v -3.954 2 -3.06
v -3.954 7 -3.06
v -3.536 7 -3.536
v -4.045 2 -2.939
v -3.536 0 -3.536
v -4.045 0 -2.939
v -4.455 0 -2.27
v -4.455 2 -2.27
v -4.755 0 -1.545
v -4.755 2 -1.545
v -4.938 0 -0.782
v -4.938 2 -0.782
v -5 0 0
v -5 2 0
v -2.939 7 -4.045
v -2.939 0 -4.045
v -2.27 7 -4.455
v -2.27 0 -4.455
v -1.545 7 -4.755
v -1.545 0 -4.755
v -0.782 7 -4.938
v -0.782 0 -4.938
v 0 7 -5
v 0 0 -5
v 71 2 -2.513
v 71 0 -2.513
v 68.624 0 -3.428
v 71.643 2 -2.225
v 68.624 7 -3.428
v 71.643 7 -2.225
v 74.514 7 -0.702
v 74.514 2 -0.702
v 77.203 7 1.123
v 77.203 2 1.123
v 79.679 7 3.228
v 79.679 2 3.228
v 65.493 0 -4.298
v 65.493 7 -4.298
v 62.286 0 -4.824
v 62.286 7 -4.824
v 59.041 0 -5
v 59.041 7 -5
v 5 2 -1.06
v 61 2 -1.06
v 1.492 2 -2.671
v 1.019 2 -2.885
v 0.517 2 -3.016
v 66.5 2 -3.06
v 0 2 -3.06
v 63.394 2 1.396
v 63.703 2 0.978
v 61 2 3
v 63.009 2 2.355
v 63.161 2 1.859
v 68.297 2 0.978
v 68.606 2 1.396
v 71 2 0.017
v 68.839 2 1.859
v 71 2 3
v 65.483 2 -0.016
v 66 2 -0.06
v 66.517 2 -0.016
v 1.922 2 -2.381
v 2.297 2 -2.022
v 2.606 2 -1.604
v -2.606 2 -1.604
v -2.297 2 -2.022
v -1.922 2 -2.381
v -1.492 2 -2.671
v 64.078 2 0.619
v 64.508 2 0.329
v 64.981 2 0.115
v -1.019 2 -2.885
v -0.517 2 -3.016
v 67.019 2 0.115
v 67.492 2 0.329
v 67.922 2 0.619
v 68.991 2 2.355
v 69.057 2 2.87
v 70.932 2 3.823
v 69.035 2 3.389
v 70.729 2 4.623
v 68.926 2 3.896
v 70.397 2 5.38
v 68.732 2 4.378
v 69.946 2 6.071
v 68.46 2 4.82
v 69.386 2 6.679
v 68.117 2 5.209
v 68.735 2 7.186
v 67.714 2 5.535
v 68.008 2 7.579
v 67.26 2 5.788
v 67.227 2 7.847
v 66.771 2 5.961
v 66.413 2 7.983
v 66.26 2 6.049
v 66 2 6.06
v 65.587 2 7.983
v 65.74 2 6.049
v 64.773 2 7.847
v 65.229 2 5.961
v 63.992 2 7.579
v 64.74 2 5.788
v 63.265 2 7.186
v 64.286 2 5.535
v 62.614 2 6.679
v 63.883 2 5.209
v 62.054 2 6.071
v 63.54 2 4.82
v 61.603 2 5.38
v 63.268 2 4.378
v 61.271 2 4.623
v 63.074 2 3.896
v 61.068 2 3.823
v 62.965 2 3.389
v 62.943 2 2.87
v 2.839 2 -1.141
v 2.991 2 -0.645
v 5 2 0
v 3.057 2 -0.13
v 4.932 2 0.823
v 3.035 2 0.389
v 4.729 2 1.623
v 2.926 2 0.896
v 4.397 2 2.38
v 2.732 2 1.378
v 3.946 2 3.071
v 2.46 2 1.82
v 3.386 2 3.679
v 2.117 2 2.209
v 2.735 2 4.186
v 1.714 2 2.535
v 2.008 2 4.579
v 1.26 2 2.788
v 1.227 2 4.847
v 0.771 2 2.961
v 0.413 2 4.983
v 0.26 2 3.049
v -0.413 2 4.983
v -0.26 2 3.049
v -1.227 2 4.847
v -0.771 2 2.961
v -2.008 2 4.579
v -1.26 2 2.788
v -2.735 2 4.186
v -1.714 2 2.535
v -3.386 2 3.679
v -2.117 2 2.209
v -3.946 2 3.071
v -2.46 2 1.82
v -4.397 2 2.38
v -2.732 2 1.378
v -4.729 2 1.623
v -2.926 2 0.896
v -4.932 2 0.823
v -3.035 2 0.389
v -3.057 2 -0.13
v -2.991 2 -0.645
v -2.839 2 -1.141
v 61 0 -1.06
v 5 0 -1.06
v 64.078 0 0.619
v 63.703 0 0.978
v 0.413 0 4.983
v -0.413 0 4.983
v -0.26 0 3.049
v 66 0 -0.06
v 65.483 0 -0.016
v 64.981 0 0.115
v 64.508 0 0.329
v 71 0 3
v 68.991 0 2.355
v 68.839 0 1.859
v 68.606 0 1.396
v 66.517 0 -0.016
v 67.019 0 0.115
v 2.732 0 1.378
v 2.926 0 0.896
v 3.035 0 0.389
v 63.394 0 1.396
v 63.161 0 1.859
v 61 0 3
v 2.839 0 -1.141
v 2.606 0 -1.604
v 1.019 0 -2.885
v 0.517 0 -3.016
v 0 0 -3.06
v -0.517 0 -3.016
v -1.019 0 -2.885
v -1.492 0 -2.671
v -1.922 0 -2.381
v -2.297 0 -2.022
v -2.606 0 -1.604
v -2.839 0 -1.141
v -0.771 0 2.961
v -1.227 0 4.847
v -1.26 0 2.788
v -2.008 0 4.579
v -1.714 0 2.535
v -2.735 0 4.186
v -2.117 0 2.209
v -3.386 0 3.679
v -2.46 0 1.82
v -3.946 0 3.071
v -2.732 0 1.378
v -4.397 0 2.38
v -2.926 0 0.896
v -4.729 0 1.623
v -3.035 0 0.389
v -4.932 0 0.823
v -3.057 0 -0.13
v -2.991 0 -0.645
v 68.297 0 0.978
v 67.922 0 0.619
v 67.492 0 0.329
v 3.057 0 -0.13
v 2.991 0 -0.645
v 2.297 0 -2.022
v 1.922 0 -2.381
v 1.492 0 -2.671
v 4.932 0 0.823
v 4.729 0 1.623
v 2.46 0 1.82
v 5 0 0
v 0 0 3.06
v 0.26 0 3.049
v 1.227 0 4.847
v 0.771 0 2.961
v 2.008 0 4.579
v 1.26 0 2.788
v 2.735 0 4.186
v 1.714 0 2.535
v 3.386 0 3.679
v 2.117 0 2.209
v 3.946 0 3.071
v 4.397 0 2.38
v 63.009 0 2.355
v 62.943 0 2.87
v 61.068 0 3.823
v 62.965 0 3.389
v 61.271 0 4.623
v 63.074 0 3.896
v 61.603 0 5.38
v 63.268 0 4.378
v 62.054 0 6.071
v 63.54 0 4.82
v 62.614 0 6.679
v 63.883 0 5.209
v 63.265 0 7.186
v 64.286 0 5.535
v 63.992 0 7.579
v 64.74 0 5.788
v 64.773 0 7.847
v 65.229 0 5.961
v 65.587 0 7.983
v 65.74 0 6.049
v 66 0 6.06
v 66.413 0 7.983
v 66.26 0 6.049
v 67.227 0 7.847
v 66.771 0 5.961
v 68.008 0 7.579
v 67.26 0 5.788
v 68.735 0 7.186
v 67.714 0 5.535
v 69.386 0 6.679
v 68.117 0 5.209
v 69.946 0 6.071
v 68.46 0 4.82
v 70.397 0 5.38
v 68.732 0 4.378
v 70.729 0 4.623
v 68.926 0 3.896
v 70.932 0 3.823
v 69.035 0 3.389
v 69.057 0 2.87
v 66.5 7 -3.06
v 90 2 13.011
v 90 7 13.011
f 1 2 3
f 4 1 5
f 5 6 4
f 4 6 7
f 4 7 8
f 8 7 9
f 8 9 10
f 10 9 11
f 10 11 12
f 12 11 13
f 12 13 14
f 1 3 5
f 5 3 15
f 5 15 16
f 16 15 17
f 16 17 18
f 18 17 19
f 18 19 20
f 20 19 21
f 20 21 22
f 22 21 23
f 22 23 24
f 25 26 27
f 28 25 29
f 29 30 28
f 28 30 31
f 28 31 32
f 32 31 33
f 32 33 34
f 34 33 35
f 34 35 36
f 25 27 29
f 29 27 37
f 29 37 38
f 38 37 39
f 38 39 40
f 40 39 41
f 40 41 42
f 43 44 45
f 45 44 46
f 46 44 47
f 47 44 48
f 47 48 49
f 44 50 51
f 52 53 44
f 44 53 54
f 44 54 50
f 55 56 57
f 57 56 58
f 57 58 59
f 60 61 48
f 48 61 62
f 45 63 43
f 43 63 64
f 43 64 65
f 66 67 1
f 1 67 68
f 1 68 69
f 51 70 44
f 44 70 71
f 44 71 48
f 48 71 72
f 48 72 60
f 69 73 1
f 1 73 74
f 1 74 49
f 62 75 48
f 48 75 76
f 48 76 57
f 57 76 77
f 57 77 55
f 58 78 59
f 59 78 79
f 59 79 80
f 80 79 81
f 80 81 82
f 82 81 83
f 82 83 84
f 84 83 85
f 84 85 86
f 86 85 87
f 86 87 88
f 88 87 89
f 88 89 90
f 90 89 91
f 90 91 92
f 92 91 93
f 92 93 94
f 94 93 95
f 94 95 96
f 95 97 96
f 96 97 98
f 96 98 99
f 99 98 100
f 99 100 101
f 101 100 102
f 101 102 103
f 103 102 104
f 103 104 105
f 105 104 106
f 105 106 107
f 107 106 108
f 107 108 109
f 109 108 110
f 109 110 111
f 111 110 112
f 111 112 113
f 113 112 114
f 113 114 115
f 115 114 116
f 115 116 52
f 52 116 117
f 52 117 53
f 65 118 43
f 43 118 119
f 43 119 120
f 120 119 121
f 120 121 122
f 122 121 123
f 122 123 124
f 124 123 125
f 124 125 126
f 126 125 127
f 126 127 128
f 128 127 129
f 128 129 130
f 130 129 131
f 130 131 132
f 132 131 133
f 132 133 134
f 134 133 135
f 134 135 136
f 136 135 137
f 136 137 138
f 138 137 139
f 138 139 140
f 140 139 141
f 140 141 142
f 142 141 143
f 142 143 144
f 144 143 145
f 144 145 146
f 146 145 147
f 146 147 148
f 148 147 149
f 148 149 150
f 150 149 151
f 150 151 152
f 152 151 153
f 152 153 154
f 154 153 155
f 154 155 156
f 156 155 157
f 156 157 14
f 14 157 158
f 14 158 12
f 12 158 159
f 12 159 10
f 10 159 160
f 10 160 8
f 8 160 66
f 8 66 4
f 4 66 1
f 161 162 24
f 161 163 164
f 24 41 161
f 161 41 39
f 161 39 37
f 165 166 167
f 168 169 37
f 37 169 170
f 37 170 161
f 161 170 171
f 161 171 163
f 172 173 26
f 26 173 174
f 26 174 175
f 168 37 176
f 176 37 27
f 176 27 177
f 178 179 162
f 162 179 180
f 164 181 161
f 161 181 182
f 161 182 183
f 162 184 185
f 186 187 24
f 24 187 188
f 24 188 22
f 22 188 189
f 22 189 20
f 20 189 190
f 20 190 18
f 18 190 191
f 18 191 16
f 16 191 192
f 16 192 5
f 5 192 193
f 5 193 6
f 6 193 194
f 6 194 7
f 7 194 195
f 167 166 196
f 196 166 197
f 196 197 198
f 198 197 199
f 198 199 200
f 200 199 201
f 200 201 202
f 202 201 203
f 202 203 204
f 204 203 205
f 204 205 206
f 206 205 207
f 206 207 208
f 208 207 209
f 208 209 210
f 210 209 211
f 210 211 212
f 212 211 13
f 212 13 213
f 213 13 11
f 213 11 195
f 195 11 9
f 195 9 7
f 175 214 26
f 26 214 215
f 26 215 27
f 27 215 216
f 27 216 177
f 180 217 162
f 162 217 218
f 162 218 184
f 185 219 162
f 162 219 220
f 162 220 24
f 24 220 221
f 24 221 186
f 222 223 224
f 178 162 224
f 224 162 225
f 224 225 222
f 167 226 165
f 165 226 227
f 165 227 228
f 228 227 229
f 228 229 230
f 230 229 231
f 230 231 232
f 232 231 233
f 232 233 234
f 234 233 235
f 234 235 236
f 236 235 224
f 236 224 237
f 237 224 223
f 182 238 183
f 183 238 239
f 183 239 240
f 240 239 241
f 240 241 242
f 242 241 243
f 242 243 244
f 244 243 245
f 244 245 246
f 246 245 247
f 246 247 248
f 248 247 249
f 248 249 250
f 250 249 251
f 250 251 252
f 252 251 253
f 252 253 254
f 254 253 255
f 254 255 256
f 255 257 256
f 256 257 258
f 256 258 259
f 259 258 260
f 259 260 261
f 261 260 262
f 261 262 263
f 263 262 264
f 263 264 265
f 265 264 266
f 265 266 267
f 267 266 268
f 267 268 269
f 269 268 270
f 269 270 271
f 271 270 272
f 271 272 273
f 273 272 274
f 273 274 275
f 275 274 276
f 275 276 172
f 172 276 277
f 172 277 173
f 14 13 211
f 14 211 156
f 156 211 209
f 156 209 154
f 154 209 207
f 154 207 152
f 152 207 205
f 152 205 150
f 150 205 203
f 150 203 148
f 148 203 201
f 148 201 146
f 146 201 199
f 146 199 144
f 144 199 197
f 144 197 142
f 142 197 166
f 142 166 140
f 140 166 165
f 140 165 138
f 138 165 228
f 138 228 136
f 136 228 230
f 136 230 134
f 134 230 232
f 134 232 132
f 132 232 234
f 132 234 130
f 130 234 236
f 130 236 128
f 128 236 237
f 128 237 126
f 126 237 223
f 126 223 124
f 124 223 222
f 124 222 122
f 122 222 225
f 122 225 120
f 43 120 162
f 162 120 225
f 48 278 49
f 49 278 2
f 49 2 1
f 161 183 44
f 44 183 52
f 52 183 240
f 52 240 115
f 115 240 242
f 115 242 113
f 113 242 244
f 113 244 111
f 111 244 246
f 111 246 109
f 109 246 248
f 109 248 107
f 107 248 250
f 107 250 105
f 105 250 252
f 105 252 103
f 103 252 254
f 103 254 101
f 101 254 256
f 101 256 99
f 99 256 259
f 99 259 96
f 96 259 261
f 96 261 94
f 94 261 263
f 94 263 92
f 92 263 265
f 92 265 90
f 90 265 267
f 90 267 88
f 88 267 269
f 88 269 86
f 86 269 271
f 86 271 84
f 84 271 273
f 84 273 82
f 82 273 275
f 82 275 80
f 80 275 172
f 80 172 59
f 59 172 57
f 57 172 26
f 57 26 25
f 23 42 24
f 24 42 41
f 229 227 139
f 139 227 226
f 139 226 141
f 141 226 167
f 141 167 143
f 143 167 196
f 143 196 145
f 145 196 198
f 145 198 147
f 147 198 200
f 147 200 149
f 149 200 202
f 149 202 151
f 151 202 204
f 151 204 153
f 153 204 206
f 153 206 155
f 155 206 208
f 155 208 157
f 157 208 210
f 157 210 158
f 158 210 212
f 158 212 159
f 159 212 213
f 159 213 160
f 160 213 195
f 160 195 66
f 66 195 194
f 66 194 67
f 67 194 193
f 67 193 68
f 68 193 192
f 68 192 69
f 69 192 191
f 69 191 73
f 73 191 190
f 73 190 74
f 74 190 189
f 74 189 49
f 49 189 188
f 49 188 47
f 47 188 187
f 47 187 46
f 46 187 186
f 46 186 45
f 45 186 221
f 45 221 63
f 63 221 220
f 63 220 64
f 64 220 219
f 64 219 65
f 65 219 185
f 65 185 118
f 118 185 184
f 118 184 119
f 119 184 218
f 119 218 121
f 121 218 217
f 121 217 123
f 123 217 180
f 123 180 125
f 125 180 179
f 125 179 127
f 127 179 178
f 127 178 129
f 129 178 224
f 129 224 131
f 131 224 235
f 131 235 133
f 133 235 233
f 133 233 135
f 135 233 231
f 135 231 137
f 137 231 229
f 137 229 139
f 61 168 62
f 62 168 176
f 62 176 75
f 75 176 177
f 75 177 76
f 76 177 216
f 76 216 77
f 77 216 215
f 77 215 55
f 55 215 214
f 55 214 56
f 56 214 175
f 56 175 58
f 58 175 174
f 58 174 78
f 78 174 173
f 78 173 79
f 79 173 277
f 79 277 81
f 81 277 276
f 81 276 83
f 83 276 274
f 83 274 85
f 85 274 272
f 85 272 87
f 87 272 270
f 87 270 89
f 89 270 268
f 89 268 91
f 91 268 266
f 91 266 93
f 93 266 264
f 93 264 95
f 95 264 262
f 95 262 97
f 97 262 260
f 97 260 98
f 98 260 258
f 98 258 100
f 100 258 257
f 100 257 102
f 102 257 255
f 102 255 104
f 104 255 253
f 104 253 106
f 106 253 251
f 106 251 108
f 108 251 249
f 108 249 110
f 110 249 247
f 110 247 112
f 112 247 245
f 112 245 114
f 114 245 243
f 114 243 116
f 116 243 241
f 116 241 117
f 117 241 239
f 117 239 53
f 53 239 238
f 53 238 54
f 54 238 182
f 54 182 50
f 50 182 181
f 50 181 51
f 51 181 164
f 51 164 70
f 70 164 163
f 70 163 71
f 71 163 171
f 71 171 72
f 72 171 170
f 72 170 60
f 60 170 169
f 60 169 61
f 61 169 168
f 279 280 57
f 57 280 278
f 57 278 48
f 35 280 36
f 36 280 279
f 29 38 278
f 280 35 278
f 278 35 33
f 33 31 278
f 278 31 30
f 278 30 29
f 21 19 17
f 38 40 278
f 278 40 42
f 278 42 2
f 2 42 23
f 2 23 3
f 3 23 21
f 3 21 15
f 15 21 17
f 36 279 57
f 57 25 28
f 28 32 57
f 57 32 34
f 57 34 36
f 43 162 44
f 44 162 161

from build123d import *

# Parameters (mm, degrees)
SKETCH1_R           = 3.06
BOSS_EXTRUDE1_DEPTH = 2
BOSS_EXTRUDE2_START = -2
BOSS_EXTRUDE2_DEPTH = 5
SKETCH6_W           = 56
SKETCH6_H           = 2
BOSS_EXTRUDE3_DEPTH = 2
FILLET1_R           = 30
FILLET2_R           = 5


with BuildPart() as part:
    # Sketch1 → Boss-Extrude1 (new body)
    with BuildSketch(Plane(origin=(0, 0, 0), x_dir=(1, 0, 0), z_dir=(0, 1, 0))):
        with BuildLine():
            Line((-5, 0), (-5, 5))
            Line((-5, 5), (71, 5))
            Line((71, 5), (71, -3))
            ThreePointArc((71, -3), (66, -8), (61, -3))
            Line((61, -3), (61, 3.06))
            Line((61, 3.06), (5, 3.06))
            Line((5, 3.06), (5, 0))
            ThreePointArc((5, 0), (0, -5), (-5, 0))
        make_face()
        with Locations(Location((0, 0, 0), (0, 0, 270))):
            Circle(SKETCH1_R, mode=Mode.SUBTRACT)
        with Locations(Location((66, -3, 0), (0, 0, 270))):
            Circle(SKETCH1_R, mode=Mode.SUBTRACT)
    extrude(amount=BOSS_EXTRUDE1_DEPTH)

    # Sketch4 → Boss-Extrude2 (add)
    with BuildSketch(Plane(origin=(0, 0, 0), x_dir=(-1, 0, 0), z_dir=(0, -1, 0)).offset(BOSS_EXTRUDE2_START)):
        Polygon((5, 5), (-71, 5), (-90, -13.010835443), (-66.5, 3.06), (5, 3.06), align=None)
    extrude(amount=-BOSS_EXTRUDE2_DEPTH)

    # Sketch6 → Boss-Extrude3 (add)
    with BuildSketch(Plane(origin=(0, 0, 0), x_dir=(-1, 0, 0), z_dir=(0, -1, 0))):
        with Locations((-33, 2.06)):
            Rectangle(SKETCH6_W, SKETCH6_H)
    extrude(amount=-BOSS_EXTRUDE3_DEPTH)

    # Fillet1
    # the kernel refuses this fillet: 30 mm, written as the material it takes off along each edge
    with BuildSketch(Plane(origin=(71, -27.8984931, -5), x_dir=(0.7257460116750271, 0, 0.6879627363002968), z_dir=(0, 1, 0))) as fillet1_piece_1:
        with BuildLine():
            CenterArc((FILLET1_R * 0.398646574667, -FILLET1_R), FILLET1_R, 90, 43.469057367)
            Line((-FILLET1_R * 0.289316161633, -FILLET1_R * 0.274253988325), (0, 0))
            Line((0, 0), (FILLET1_R * 0.398646574667, 0))
        make_face()
    extrude(amount=64.7969862, mode=Mode.SUBTRACT)

    # Fillet2
    # the kernel refuses this fillet: 5 mm, written as the material it takes off along each edge
    with BuildSketch(Plane(origin=(-5, 19.5, -5), x_dir=(0, 0, 1), z_dir=(0, -1, 0))) as fillet2_piece_1:
        with BuildLine():
            CenterArc((FILLET2_R, -FILLET2_R), FILLET2_R, 90, 90)
            Line((0, -FILLET2_R), (0, 0))
            Line((0, 0), (FILLET2_R, 0))
        make_face()
    extrude(amount=32, mode=Mode.SUBTRACT)


solid = part.part
